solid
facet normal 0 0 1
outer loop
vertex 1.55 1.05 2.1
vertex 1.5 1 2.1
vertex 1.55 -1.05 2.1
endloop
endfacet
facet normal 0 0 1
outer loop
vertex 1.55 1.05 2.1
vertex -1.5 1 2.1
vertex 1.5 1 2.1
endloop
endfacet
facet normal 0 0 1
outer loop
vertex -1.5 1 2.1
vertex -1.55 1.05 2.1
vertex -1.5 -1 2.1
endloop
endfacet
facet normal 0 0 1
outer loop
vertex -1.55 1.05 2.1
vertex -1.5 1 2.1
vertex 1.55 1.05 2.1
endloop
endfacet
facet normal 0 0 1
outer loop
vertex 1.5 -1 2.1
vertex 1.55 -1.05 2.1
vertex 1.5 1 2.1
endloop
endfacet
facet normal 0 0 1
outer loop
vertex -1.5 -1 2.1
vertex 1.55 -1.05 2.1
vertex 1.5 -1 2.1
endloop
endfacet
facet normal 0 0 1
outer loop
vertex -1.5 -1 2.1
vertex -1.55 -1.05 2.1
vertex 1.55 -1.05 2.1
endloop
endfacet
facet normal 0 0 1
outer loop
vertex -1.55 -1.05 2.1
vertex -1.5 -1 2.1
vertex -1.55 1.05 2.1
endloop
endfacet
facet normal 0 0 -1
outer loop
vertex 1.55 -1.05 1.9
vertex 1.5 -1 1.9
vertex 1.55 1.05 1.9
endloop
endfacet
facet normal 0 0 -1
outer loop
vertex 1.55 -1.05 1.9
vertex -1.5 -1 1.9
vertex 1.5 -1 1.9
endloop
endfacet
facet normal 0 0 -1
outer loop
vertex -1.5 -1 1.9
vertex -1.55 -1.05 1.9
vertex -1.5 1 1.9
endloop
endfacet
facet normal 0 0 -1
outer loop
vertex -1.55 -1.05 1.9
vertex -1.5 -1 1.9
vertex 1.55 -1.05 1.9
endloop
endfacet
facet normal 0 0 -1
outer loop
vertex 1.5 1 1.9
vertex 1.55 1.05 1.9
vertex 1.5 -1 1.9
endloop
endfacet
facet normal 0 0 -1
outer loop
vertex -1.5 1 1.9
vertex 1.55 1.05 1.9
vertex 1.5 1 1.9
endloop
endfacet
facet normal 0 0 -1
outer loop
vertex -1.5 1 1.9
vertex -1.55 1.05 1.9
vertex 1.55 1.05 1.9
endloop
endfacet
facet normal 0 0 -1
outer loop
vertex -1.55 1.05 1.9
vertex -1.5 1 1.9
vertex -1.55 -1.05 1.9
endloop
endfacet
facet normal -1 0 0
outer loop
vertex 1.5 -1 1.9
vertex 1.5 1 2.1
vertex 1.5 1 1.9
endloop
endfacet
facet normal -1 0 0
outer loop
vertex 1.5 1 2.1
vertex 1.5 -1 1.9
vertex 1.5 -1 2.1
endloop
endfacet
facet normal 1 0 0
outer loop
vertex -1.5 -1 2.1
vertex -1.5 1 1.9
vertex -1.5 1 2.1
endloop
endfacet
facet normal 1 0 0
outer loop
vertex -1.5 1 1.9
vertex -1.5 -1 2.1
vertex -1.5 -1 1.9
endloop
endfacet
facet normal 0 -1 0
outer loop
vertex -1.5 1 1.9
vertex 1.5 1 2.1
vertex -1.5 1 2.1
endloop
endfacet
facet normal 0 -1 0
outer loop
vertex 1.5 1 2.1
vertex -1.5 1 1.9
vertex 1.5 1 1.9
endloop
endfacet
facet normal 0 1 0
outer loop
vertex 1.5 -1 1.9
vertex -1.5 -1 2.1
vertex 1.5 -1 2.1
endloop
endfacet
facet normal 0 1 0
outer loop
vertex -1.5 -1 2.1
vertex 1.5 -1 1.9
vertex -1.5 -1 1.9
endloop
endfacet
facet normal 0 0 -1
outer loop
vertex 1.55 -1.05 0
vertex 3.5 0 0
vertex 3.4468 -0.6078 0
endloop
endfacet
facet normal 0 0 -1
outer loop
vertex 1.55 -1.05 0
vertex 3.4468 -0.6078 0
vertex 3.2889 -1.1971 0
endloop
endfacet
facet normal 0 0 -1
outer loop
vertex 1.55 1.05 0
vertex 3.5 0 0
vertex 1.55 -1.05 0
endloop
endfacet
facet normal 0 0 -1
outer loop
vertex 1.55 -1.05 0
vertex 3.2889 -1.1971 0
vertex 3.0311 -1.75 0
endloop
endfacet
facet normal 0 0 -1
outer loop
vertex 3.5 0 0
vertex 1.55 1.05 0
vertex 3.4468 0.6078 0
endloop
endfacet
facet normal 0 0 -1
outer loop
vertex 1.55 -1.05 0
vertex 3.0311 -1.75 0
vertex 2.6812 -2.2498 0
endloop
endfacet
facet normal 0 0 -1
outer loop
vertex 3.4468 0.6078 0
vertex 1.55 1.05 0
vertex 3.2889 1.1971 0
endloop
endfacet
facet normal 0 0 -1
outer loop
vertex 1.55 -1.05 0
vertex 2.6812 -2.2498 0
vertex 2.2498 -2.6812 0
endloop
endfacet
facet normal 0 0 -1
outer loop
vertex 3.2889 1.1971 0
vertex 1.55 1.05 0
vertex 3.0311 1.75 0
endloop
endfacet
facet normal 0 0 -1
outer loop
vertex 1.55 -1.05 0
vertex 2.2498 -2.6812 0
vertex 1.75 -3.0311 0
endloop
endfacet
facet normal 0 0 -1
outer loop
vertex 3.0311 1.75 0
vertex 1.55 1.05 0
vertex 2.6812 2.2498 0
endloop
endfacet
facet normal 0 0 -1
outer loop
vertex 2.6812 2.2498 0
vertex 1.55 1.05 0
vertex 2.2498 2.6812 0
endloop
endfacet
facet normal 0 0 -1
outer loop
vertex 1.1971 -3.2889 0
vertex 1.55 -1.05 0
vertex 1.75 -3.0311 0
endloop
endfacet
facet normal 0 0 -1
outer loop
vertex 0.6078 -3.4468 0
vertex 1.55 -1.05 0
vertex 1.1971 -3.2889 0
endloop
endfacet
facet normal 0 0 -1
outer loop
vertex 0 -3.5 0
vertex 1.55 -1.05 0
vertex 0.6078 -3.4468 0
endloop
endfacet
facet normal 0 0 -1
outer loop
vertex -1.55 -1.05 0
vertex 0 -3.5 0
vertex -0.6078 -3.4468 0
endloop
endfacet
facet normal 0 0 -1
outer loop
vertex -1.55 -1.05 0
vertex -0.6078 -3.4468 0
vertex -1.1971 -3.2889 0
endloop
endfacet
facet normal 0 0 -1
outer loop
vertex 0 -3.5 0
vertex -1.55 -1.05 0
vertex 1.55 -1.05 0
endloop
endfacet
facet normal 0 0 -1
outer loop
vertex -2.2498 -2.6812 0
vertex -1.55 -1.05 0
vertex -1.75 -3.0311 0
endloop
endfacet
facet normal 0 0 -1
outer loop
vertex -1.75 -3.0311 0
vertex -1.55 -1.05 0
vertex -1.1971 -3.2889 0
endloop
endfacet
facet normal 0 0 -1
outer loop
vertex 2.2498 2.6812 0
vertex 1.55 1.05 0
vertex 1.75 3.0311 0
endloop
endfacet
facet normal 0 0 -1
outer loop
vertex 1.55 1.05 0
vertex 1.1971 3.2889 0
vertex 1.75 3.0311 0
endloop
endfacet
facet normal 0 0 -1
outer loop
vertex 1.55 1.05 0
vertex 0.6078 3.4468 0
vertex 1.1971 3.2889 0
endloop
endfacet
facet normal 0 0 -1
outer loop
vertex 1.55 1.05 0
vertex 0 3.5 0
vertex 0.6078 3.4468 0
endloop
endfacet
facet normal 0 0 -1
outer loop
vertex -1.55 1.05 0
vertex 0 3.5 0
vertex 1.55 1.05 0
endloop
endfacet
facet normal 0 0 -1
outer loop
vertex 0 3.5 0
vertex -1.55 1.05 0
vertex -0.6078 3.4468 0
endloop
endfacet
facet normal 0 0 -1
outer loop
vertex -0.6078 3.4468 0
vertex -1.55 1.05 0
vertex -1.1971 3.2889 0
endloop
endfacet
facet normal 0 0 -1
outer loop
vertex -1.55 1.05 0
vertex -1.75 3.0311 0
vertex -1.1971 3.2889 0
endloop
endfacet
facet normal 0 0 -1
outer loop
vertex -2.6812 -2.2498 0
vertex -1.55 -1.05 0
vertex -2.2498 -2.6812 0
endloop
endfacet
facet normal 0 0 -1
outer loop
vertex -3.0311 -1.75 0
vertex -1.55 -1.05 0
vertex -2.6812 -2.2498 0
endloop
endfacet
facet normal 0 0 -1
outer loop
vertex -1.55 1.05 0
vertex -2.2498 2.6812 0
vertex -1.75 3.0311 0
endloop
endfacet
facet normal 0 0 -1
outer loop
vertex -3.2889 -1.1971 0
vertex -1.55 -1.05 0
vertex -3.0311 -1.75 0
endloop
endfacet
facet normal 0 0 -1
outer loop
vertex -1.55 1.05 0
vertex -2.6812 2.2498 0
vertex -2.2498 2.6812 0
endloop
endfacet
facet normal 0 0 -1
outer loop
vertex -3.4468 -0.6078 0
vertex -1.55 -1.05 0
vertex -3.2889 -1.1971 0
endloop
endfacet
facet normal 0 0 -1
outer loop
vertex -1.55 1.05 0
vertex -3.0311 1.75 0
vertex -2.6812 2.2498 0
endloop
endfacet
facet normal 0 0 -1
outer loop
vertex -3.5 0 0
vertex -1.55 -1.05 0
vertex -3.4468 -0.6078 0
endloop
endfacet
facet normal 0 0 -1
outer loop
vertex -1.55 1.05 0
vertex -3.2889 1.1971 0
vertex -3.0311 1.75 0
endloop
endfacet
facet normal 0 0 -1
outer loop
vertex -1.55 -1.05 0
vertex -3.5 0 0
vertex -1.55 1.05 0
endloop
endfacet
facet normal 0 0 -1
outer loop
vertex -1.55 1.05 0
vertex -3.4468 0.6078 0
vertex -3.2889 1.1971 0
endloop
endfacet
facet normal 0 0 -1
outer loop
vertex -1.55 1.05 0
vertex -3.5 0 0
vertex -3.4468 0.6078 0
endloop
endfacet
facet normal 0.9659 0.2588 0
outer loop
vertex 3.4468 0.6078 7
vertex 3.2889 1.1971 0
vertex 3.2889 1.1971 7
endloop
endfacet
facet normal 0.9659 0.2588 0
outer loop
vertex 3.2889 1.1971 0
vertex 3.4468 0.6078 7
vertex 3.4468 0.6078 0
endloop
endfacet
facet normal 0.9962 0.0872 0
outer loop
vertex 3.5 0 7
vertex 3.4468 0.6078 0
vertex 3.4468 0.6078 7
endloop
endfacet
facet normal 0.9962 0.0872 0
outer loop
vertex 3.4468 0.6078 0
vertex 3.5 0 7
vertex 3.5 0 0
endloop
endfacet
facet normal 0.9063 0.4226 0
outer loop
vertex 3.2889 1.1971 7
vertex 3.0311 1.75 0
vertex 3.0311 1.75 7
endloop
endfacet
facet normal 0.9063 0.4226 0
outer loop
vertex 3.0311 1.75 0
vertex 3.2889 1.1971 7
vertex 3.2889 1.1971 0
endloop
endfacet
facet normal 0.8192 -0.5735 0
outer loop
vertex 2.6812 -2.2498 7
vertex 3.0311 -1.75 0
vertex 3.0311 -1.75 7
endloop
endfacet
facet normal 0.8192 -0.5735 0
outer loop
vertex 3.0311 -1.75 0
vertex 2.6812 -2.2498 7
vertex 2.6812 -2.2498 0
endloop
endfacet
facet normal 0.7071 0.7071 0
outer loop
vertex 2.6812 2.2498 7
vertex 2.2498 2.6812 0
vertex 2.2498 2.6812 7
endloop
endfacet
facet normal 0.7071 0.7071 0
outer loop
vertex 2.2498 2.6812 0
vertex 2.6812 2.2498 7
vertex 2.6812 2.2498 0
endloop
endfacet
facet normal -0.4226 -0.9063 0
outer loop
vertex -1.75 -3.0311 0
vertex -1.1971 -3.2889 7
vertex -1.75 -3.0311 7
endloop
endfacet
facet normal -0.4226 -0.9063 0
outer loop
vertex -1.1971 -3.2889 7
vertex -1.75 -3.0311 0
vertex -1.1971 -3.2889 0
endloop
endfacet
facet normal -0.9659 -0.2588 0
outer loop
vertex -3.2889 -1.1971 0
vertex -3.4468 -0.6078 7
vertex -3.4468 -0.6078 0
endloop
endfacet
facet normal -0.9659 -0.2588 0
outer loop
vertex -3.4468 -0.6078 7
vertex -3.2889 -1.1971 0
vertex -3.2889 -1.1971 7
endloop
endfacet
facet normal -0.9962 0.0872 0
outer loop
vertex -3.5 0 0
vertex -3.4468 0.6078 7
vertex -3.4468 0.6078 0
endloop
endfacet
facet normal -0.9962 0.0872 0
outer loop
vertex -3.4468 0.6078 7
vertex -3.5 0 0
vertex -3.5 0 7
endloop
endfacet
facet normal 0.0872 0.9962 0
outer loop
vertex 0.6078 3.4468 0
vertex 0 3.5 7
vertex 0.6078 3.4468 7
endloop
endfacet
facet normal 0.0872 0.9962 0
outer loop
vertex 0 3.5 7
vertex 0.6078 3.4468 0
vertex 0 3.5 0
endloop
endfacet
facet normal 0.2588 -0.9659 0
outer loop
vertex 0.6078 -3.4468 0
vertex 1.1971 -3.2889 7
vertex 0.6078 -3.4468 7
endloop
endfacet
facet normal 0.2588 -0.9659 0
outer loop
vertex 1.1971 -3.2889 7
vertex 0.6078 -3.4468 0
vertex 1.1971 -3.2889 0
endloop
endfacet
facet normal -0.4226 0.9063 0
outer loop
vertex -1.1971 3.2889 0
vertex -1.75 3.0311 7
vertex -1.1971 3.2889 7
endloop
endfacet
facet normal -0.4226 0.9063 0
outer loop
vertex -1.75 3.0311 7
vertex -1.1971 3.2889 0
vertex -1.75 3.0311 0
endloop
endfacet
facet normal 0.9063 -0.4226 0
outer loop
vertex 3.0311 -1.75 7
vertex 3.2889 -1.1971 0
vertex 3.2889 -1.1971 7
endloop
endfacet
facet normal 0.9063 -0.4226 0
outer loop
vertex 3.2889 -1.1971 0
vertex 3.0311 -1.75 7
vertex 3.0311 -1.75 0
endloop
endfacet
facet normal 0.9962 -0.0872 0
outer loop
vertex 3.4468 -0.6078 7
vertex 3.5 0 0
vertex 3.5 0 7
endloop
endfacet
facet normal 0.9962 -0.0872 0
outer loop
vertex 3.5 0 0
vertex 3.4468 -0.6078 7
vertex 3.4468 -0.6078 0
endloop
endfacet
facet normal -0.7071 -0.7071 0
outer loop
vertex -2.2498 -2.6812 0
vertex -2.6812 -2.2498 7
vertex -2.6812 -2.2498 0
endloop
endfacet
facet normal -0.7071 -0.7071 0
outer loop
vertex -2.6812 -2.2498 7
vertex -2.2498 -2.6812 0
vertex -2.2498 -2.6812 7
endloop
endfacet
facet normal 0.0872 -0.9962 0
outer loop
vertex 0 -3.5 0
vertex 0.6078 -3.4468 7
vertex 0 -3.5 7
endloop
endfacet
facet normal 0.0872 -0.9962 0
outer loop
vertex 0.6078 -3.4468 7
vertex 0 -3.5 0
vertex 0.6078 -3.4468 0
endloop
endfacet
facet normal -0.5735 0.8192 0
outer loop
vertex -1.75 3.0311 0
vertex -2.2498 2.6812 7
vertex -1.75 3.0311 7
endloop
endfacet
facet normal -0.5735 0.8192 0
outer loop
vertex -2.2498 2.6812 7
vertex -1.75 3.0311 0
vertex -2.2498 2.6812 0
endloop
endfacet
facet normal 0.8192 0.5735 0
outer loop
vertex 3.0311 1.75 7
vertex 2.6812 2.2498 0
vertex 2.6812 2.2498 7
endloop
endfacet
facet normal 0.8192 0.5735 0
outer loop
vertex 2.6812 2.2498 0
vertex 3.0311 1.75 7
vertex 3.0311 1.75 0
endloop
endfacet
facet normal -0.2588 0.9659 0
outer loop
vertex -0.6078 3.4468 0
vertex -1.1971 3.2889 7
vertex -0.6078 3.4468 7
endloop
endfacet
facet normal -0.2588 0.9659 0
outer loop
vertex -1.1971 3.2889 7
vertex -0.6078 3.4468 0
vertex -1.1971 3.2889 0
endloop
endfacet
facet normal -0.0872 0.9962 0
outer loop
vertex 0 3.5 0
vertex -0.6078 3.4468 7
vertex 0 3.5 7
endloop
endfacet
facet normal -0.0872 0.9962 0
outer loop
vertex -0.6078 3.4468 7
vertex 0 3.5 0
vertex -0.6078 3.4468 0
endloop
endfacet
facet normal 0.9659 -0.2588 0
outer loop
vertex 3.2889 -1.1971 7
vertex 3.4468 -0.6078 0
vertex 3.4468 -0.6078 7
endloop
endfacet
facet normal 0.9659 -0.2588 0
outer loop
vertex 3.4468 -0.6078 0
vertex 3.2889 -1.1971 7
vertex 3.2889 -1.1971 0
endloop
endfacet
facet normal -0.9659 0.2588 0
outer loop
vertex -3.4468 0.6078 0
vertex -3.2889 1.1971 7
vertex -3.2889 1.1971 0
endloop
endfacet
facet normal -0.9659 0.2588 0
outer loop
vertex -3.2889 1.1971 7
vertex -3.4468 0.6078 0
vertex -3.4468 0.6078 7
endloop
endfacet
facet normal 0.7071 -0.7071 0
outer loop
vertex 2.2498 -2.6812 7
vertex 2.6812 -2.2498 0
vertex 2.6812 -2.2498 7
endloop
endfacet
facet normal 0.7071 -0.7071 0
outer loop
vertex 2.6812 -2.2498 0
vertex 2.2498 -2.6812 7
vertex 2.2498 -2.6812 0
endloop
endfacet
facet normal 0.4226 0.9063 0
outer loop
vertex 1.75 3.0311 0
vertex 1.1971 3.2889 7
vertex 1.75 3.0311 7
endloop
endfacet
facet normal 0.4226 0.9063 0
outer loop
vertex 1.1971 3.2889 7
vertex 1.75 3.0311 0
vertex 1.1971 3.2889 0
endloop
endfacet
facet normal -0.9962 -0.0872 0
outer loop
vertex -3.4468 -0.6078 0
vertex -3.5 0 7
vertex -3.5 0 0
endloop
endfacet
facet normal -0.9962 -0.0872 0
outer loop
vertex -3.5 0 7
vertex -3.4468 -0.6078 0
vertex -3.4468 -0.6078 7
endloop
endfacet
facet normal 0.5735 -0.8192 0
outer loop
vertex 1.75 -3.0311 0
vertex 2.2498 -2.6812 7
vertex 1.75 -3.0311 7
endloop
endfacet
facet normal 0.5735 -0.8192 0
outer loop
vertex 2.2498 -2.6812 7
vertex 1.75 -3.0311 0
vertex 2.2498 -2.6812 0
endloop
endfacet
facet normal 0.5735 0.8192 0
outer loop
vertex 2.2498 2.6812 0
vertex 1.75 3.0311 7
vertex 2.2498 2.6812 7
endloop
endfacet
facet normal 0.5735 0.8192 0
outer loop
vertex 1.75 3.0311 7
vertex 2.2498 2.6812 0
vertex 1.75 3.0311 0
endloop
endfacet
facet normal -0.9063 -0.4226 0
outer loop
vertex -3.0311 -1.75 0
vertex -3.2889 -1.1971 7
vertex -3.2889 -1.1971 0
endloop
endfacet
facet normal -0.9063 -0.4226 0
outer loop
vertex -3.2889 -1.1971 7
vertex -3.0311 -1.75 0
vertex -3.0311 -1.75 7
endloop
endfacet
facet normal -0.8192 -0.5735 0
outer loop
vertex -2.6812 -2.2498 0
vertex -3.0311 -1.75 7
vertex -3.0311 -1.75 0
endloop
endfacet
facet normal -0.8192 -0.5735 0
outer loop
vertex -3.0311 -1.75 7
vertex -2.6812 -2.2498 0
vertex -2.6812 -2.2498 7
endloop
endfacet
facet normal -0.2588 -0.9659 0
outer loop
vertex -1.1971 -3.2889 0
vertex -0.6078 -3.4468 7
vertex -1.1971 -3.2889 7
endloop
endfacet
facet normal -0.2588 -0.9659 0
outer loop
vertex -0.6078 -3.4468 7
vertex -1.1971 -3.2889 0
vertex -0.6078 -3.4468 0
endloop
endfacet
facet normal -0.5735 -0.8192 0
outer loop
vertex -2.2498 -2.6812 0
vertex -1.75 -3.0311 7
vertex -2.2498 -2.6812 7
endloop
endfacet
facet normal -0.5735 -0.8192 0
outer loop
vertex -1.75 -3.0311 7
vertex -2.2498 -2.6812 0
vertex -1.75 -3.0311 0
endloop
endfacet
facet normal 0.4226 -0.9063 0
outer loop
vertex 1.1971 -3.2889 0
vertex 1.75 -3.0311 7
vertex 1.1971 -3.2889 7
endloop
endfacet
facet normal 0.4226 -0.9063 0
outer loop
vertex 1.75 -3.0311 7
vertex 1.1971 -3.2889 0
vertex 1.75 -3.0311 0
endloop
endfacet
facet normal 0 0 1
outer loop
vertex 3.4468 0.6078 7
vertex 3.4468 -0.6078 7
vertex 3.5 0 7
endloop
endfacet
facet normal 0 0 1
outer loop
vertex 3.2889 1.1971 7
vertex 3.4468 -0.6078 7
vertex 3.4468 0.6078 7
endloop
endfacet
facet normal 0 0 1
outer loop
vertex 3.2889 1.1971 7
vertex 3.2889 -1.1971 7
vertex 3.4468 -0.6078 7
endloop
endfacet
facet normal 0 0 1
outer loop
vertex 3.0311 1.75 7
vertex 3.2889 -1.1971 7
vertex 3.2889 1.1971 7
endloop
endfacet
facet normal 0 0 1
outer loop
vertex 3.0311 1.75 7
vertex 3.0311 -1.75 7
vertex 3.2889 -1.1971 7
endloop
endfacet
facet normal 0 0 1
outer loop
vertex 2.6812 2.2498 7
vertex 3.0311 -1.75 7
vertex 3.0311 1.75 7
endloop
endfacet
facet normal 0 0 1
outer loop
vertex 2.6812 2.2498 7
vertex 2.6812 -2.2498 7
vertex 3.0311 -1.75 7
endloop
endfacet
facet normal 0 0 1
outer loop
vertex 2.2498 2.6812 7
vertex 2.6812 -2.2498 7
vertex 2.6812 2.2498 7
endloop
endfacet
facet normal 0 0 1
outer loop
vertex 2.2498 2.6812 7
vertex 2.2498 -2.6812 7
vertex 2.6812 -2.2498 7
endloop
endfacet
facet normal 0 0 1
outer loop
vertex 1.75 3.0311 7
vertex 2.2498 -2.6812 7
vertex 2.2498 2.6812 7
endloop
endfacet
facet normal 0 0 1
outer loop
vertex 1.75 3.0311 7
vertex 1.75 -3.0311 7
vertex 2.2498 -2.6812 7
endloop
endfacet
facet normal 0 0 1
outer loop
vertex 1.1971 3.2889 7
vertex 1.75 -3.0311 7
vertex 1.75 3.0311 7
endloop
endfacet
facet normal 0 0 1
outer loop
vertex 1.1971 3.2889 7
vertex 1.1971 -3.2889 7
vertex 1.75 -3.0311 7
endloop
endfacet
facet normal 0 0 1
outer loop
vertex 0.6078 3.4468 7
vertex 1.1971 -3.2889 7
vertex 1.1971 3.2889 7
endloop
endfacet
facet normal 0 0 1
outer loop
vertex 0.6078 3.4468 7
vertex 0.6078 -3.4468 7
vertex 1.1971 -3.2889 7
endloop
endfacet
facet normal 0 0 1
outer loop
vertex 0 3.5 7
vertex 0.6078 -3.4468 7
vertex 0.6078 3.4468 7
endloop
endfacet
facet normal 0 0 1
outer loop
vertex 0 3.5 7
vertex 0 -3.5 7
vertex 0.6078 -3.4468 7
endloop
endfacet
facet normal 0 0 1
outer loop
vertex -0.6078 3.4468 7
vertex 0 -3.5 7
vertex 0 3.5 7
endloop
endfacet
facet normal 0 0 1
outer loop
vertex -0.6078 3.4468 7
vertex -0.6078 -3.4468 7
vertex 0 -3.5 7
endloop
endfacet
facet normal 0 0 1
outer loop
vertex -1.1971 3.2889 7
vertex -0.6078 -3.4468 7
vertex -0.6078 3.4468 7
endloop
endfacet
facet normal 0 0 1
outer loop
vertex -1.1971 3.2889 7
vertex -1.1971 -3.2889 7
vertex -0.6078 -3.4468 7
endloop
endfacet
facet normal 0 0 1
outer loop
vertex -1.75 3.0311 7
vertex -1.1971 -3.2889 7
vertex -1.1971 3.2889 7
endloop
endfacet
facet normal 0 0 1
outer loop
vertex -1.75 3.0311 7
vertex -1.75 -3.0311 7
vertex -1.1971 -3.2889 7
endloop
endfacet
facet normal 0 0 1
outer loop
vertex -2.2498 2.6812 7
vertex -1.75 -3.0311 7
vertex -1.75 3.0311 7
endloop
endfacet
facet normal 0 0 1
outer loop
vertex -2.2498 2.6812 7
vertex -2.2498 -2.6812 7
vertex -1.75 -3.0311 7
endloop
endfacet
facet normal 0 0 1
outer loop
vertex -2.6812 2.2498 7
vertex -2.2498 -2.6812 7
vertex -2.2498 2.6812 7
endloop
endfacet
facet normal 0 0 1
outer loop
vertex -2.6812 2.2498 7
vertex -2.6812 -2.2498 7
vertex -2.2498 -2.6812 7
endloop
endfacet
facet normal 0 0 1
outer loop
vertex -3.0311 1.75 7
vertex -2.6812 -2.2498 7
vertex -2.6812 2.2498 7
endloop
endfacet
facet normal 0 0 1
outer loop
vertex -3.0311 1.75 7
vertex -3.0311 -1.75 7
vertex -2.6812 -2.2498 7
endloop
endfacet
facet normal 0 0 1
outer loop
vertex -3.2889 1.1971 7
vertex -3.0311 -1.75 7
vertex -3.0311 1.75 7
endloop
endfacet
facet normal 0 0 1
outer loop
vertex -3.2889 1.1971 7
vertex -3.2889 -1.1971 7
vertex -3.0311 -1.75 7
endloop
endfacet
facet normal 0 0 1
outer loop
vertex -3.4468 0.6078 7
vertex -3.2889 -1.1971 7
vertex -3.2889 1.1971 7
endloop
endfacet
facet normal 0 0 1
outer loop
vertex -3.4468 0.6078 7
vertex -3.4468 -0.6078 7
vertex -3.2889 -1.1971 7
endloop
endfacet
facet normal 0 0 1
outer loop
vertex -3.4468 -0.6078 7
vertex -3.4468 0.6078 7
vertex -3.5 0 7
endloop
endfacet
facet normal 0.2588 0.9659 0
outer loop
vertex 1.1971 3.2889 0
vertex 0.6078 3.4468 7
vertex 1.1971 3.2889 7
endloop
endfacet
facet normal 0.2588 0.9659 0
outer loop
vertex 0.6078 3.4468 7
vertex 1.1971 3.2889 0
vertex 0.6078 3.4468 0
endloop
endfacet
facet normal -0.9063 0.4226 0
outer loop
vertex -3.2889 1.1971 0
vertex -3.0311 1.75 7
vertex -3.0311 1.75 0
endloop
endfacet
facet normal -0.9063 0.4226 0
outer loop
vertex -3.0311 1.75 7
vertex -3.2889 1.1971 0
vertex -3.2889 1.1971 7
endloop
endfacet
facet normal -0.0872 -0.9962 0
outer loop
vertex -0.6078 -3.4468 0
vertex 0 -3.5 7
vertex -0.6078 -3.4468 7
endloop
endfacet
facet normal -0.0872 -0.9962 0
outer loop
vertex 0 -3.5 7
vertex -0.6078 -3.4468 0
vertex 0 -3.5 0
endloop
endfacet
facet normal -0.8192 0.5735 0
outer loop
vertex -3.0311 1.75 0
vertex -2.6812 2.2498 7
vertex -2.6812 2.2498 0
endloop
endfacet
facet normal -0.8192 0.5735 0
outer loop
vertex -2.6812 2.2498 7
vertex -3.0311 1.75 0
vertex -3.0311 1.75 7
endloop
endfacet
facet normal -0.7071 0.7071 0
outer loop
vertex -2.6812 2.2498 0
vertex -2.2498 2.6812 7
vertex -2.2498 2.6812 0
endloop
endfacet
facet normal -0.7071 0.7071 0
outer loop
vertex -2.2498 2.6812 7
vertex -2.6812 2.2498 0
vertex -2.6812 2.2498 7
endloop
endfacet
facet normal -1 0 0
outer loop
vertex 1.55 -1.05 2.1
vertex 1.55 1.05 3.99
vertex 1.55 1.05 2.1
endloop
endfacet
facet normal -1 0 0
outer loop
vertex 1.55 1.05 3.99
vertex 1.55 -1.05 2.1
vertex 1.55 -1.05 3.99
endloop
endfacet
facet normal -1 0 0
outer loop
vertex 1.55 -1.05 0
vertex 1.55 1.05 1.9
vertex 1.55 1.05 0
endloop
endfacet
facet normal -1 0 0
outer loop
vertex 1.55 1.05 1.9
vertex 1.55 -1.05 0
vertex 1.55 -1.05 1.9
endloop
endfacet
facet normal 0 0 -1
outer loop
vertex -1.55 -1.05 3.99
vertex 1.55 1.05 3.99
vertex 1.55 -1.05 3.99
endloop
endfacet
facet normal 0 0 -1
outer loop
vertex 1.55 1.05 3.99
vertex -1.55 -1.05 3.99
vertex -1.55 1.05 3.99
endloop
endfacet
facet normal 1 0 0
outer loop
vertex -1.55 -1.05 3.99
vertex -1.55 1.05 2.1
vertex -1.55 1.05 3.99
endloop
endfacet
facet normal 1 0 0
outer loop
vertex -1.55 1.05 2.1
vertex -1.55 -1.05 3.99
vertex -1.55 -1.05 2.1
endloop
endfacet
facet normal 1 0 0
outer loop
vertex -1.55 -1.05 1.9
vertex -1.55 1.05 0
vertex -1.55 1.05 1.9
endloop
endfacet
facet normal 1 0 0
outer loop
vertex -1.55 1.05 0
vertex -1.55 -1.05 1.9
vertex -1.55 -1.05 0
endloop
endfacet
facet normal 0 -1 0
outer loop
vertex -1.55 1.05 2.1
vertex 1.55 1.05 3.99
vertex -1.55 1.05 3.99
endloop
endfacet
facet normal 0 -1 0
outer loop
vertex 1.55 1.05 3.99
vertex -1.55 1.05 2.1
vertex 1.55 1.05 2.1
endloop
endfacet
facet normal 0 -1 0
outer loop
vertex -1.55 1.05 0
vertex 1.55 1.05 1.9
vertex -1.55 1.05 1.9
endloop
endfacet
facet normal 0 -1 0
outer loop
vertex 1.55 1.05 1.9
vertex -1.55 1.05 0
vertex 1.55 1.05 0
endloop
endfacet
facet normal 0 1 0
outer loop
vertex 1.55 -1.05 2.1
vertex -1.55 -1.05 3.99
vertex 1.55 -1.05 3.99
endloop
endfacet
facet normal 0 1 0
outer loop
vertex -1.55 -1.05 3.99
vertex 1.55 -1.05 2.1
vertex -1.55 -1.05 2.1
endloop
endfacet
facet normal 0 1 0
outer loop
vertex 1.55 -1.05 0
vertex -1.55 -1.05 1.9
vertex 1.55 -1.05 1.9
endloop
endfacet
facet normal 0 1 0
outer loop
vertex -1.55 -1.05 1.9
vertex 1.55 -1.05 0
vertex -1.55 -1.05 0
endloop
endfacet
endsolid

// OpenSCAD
// Push Button Cap for 8mm hole and 3x2mm switch stem

$fn=36;
button_h=7;
button_d=7;

union() {
    difference() {
        translate([0 ,0, button_h/2]) {
            cylinder(button_h, button_d/2, button_d/2, center=true);
        }
        translate([0, 0, 1.99]) {
            cube([3.1, 2.1, 4], center=true);
        }
    }
    color([0,0,1]) {
        difference() {
            translate([0, 0, 2]) {
                cube([4, 4, 0.2], center=true);
            }
            translate([0, 0, 2.5]) {
                cube([3, 2, 10], center=true);
            }
        }
    }
}
